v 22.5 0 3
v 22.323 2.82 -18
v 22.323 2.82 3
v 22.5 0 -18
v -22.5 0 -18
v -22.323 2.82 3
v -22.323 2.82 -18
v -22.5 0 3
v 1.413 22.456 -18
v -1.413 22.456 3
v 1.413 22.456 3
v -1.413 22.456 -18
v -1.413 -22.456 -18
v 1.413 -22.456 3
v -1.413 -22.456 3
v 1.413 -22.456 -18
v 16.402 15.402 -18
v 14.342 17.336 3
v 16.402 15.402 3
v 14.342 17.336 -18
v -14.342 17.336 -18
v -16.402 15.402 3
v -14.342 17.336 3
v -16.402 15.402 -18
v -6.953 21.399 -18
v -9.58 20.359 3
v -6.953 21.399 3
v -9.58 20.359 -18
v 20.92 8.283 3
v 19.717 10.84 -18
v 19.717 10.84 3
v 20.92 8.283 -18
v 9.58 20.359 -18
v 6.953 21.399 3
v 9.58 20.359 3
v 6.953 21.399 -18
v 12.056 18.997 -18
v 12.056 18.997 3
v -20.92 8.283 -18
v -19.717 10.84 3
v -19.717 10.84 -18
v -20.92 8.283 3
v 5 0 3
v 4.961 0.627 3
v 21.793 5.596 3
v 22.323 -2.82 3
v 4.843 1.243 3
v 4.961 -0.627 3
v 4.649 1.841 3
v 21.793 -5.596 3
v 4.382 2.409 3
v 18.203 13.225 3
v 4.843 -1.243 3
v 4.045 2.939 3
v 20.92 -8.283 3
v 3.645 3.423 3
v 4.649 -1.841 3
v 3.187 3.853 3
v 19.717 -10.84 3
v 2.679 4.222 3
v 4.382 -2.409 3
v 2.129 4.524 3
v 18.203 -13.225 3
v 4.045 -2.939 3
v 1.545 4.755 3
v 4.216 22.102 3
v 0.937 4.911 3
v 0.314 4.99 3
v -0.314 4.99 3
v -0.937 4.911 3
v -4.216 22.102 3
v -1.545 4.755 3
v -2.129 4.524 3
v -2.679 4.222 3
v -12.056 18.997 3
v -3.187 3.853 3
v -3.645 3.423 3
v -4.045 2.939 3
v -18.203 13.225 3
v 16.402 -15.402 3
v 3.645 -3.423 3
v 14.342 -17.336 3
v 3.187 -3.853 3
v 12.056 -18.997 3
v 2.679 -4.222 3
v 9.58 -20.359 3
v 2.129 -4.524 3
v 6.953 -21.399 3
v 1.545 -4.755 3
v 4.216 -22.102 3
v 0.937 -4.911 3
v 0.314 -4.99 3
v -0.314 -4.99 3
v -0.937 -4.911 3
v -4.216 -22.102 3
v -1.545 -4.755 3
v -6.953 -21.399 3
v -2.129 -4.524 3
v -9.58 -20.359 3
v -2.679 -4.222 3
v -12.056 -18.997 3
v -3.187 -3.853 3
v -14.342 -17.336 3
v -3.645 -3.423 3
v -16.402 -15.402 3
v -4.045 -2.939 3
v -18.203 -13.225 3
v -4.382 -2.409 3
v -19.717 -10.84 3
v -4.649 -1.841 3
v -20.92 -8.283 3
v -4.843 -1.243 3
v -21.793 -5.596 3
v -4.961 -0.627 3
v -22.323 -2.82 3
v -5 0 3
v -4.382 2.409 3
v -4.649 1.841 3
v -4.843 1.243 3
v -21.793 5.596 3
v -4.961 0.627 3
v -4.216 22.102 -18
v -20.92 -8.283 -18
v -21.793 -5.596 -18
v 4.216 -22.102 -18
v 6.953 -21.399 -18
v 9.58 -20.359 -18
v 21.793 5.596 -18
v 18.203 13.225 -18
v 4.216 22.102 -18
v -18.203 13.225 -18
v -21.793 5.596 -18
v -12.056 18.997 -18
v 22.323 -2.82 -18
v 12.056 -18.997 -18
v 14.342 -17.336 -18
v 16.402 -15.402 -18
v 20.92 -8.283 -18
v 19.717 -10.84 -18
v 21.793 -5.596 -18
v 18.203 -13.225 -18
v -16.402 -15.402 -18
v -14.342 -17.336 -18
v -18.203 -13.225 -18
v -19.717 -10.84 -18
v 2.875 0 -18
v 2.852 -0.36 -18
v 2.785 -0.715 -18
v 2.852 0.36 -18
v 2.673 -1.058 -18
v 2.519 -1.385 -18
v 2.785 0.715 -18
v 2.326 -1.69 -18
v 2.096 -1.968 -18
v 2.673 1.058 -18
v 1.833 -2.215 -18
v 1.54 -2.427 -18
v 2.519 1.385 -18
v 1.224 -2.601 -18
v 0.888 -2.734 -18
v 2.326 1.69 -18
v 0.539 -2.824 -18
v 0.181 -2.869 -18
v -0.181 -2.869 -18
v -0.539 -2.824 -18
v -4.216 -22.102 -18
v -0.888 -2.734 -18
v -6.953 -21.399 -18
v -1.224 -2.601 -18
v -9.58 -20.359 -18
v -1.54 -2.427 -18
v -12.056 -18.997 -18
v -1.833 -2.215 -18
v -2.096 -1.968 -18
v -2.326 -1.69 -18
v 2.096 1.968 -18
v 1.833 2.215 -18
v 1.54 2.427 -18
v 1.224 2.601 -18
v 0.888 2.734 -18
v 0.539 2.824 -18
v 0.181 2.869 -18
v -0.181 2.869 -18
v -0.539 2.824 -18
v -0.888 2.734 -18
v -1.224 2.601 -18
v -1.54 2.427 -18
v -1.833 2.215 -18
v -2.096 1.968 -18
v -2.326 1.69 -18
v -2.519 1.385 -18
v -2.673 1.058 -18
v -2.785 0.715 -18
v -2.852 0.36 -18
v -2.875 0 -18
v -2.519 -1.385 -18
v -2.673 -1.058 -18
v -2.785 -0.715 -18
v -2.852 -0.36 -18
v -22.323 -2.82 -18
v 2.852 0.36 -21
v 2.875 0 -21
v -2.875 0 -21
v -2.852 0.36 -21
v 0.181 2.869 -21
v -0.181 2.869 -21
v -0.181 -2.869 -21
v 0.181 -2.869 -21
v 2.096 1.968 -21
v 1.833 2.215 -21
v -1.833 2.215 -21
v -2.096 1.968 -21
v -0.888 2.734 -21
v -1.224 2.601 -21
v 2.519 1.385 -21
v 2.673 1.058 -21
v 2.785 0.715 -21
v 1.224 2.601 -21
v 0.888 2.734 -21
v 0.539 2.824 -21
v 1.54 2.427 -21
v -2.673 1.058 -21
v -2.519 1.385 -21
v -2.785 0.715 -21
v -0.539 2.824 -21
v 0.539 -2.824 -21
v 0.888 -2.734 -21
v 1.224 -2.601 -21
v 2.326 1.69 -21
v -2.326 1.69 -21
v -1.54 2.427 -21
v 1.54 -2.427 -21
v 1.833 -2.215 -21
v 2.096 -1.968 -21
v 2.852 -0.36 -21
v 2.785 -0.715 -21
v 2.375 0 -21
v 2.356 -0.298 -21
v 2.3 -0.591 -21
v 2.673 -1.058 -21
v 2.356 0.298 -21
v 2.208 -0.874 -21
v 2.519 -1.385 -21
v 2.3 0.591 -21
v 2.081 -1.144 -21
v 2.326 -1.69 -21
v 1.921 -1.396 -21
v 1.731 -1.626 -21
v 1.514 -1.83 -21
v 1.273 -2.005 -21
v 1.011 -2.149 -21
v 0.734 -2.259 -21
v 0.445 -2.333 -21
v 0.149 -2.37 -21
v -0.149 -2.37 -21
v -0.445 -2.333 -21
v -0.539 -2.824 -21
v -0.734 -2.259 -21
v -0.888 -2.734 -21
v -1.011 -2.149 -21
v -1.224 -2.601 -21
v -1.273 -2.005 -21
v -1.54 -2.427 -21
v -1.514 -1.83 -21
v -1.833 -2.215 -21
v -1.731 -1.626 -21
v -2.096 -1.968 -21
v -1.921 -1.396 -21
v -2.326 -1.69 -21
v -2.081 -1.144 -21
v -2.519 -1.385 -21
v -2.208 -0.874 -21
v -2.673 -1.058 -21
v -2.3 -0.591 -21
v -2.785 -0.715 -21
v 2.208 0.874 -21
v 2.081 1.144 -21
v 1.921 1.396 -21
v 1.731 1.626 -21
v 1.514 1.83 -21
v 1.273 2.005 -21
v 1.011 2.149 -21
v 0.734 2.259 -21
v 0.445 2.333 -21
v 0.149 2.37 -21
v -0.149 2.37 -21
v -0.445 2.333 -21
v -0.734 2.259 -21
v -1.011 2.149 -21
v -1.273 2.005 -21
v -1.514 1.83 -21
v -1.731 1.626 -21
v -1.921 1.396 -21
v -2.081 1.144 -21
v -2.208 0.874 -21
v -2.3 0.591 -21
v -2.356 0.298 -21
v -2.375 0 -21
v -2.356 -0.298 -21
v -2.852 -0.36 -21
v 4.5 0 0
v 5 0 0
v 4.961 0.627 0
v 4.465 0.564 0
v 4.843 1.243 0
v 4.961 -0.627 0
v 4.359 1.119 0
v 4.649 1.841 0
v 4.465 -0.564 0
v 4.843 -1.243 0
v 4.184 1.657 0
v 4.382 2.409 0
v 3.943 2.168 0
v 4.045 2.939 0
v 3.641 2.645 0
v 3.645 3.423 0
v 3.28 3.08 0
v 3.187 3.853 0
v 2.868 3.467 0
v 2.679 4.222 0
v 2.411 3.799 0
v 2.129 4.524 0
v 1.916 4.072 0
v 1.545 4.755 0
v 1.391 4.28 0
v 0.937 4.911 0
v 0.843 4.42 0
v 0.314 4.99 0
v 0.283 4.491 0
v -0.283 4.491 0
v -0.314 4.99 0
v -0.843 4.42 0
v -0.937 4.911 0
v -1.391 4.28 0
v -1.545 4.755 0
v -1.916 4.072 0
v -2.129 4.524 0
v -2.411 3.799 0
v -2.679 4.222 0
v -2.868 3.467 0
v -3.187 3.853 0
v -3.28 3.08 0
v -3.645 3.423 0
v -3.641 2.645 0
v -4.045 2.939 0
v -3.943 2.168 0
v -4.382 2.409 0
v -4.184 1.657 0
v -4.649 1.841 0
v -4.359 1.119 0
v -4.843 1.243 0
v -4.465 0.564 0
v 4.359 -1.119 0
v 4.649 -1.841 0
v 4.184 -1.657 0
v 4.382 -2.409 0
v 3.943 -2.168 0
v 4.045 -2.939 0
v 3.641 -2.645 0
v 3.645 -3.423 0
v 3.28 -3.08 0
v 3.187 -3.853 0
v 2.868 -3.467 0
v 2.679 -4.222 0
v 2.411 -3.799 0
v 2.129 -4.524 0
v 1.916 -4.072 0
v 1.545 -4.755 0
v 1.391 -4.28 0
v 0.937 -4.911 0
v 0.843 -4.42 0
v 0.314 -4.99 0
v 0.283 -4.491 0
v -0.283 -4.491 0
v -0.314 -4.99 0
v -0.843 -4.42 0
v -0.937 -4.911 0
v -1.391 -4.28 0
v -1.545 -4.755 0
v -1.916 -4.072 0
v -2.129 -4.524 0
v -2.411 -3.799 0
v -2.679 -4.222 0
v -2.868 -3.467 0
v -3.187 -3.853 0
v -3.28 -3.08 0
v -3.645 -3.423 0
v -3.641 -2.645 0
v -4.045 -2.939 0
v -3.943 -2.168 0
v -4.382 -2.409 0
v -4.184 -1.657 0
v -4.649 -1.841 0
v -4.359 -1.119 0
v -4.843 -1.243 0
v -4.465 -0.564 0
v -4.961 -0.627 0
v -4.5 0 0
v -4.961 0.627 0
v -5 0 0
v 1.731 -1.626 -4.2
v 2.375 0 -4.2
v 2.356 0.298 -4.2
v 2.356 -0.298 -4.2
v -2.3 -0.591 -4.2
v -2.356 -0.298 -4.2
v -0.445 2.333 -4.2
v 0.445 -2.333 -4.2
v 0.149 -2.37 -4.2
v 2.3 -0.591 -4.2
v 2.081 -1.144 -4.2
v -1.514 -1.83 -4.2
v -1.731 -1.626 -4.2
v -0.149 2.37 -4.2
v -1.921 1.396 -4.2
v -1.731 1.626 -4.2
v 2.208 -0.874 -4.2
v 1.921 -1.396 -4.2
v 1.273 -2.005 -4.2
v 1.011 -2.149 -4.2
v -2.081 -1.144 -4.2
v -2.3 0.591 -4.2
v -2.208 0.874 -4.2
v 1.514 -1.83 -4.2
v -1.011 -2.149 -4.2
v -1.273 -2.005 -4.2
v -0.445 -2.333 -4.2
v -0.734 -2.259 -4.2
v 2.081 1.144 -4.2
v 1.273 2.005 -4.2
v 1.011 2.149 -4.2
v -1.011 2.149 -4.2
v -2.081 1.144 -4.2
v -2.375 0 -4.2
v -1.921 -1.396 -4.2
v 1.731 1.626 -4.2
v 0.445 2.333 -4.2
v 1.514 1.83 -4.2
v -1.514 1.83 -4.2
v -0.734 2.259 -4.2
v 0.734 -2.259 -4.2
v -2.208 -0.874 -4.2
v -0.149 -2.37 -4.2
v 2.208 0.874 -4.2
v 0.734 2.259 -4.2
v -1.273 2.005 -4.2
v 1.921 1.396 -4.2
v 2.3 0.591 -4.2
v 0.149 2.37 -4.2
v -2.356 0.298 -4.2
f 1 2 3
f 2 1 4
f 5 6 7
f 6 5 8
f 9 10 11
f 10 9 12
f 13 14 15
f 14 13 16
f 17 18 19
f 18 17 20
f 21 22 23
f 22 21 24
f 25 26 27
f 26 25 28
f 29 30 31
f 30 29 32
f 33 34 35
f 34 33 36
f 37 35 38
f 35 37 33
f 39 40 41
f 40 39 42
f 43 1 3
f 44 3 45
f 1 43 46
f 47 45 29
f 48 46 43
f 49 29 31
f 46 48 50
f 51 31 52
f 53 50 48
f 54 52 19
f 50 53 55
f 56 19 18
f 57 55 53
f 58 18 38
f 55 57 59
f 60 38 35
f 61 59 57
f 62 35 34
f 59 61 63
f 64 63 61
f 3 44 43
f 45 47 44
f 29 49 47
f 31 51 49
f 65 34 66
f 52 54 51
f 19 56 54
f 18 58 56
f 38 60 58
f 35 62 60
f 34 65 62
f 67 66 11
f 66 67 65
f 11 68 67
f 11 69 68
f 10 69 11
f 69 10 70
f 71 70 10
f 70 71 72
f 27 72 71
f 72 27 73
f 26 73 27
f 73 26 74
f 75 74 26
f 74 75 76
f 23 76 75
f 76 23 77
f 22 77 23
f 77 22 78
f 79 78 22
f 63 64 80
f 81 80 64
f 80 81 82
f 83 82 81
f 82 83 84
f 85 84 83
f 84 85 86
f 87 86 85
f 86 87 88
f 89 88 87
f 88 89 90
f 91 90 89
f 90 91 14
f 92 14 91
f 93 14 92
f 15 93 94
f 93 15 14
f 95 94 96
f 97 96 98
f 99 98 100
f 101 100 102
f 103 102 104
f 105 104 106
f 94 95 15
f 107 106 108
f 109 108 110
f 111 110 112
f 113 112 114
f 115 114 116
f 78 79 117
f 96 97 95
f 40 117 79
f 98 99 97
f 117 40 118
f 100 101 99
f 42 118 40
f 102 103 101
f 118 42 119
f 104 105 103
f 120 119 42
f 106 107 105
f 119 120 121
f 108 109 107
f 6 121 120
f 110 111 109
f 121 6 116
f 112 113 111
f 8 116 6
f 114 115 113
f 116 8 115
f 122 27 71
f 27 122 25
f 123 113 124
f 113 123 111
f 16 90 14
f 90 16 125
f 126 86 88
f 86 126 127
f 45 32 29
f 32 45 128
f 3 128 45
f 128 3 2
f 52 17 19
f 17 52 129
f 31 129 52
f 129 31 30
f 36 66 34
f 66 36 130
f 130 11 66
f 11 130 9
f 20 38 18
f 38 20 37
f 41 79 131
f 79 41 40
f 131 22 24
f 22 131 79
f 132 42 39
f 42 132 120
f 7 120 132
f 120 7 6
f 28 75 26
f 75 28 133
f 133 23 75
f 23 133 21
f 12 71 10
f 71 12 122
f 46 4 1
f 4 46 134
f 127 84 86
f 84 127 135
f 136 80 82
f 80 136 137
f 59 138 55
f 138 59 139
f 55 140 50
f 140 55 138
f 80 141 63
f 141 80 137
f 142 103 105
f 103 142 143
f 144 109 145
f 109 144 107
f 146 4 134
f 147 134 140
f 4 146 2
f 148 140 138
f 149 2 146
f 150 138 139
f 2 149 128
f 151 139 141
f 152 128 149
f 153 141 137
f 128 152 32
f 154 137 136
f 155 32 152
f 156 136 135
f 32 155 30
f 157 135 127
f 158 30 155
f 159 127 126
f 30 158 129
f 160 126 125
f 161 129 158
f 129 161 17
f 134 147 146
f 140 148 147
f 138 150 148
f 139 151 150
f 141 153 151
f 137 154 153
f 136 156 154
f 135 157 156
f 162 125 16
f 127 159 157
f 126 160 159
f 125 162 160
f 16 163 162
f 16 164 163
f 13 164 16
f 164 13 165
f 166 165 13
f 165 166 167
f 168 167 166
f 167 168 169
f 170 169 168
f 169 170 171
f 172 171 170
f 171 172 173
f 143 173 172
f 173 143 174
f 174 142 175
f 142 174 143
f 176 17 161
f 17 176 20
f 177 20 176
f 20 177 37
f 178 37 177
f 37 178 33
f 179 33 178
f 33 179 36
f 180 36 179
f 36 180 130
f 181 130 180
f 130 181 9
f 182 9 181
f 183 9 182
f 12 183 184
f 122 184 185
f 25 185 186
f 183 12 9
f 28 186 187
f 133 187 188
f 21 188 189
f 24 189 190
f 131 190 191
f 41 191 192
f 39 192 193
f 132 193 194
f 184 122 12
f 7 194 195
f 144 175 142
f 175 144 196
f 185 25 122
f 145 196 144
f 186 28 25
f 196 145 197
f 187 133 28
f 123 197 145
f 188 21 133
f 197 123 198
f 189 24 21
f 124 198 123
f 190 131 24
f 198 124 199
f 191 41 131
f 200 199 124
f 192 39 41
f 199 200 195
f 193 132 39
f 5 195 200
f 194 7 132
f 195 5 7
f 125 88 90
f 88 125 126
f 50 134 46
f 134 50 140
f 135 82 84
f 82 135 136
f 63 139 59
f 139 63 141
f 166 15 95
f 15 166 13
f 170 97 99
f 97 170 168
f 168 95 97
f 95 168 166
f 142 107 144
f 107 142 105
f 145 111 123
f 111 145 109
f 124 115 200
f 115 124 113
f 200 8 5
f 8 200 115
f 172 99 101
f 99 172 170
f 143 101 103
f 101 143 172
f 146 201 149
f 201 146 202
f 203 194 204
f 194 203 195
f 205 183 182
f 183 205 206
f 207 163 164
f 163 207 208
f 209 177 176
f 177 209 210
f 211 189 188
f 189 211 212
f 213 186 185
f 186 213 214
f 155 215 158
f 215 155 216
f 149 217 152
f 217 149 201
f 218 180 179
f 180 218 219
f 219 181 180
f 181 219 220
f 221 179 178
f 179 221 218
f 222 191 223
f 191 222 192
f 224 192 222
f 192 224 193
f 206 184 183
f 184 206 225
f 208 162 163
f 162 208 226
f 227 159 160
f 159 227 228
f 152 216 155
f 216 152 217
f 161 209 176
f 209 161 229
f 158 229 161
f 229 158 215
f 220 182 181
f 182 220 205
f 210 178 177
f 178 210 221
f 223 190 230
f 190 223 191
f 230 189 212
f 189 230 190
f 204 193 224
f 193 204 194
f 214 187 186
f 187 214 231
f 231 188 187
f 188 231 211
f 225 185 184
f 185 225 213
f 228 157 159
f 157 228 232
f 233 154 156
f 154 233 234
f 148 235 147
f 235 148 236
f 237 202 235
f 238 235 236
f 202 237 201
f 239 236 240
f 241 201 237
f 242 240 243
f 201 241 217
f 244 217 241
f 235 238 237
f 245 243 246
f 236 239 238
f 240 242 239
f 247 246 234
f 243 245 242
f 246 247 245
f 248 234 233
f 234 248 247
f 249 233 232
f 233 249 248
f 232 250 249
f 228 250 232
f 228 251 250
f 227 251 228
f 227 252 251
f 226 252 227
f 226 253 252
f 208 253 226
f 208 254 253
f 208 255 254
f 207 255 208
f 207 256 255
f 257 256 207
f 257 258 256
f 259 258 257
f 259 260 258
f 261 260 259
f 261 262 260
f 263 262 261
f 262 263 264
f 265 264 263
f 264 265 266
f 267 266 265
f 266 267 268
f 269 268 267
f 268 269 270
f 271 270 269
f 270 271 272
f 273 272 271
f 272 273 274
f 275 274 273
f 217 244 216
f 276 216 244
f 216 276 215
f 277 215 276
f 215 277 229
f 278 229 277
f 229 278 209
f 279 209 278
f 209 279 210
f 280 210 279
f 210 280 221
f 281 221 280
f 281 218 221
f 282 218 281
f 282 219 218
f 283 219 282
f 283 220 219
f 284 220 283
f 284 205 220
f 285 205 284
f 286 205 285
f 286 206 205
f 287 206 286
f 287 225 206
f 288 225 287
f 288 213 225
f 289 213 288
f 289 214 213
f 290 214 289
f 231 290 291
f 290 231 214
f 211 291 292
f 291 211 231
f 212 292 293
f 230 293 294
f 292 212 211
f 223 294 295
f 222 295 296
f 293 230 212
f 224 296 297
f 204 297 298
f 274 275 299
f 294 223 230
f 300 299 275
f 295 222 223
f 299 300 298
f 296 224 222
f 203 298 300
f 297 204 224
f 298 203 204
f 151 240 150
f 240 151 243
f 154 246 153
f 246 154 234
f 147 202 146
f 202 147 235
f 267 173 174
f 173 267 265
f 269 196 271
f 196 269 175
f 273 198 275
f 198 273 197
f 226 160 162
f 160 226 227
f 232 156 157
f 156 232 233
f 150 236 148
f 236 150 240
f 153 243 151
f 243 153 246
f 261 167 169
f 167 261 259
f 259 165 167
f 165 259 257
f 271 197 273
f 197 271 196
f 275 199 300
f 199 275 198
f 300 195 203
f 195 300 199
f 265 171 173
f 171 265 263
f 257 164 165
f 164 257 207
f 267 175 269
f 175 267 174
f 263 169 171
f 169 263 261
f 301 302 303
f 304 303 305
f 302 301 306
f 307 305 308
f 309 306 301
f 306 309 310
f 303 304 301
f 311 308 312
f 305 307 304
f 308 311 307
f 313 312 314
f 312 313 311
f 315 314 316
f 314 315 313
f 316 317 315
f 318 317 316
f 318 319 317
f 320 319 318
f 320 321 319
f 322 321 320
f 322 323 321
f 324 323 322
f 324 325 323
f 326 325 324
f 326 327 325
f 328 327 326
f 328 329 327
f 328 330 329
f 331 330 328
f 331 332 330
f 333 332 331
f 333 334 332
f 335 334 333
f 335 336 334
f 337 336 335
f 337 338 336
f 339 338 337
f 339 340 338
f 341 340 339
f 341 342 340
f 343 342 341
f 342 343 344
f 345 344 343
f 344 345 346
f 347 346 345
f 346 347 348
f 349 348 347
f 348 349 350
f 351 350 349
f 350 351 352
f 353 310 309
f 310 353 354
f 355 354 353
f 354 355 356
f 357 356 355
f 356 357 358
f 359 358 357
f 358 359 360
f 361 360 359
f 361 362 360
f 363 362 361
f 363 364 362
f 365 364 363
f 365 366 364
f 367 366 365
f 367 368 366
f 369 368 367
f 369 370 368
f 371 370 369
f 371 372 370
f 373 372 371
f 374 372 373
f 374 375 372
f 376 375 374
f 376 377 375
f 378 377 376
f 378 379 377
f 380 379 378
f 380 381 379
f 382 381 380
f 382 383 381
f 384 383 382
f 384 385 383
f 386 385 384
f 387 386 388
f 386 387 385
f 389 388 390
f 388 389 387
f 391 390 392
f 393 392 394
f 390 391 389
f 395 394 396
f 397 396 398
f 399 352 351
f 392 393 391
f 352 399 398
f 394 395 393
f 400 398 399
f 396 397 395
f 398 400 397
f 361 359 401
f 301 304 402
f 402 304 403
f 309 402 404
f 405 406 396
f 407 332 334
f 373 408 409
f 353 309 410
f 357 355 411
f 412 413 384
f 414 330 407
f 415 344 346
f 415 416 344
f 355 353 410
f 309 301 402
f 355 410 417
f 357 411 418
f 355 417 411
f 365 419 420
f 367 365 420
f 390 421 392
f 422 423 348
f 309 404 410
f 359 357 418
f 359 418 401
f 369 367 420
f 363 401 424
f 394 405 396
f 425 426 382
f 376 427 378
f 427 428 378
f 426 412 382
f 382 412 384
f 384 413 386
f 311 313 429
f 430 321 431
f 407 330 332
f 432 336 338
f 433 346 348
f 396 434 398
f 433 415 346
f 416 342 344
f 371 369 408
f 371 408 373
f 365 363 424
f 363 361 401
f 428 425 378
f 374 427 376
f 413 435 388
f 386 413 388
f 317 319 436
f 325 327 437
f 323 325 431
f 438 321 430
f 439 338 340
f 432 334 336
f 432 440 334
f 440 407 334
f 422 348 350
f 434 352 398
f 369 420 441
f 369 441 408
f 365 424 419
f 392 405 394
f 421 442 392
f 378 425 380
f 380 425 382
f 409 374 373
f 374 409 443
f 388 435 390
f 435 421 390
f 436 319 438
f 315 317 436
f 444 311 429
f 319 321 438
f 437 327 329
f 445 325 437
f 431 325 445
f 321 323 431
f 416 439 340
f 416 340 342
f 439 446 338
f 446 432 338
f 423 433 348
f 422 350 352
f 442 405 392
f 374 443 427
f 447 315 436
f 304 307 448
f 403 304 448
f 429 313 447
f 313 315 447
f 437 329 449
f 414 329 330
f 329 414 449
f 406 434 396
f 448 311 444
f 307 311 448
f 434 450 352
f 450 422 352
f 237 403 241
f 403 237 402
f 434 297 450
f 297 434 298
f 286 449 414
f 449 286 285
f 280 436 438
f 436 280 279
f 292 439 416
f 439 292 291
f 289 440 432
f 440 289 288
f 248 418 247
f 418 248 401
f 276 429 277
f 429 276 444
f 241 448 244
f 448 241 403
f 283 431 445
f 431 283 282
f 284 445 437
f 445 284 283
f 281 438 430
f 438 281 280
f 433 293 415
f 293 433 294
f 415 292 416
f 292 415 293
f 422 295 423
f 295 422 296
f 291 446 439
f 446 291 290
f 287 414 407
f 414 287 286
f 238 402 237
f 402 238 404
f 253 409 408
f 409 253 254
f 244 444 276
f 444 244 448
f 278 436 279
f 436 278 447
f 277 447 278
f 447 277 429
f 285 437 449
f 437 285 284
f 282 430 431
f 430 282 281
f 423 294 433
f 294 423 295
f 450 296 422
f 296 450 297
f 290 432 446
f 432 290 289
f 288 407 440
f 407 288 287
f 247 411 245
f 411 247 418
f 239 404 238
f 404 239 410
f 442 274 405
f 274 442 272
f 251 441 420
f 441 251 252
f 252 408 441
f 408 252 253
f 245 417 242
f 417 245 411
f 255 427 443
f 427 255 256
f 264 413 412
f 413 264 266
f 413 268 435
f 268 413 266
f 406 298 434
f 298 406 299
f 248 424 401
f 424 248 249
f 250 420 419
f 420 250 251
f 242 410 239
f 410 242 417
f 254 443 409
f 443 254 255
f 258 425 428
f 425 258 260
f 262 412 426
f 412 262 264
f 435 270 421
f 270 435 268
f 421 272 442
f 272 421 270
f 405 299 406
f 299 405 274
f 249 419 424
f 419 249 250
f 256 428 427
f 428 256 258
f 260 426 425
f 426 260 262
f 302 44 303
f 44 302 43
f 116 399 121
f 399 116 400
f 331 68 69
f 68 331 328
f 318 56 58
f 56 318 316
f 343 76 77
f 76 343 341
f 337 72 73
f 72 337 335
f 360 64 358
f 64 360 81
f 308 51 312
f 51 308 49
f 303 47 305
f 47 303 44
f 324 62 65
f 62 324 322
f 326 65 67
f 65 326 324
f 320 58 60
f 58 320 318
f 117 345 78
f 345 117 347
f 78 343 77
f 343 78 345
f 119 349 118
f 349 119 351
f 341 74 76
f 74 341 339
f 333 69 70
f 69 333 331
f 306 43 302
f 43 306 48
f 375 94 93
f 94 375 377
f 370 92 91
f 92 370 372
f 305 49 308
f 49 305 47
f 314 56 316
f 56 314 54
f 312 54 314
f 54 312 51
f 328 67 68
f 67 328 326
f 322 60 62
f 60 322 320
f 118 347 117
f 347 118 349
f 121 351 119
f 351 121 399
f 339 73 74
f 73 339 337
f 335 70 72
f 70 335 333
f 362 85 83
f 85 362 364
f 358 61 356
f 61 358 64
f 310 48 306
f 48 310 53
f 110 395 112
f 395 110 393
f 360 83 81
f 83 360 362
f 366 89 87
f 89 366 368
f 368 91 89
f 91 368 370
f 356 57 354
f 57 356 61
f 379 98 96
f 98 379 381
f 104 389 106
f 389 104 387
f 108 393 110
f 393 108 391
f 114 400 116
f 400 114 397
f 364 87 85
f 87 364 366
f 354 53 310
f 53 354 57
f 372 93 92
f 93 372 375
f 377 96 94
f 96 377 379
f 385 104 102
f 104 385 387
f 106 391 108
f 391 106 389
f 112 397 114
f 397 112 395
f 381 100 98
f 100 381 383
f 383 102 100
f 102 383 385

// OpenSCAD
$fn = 50;

difference() {
	union() {
		translate(v = [0, 0, -18.0]) {
			cylinder(h = 21, r = 22.5);
		}
		#translate(v = [0, 0, -21.0]) {
			cylinder(h = 21, r = 2.875);
		}
	}
	union() {
		translate(v = [0, 0, 0]) {
			rotate(a = [0, 0, 0]) {
				difference() {
					union() {
						translate(v = [0, 0, -21.0]) {
							cylinder(h = 21, r = 2.25);
						}
						translate(v = [0, 0, -4.2]) {
							cylinder(h = 4.2, r1 = 2.375, r2 = 4.5);
						}
						translate(v = [0, 0, -21.0]) {
							cylinder(h = 21, r = 2.375);
						}
						translate(v = [0, 0, -21.0]) {
							cylinder(h = 21, r = 2.25);
						}
					}
					union();
				}
			}
		}
		#cylinder(h = 3, r = 5.0);
	}
}
